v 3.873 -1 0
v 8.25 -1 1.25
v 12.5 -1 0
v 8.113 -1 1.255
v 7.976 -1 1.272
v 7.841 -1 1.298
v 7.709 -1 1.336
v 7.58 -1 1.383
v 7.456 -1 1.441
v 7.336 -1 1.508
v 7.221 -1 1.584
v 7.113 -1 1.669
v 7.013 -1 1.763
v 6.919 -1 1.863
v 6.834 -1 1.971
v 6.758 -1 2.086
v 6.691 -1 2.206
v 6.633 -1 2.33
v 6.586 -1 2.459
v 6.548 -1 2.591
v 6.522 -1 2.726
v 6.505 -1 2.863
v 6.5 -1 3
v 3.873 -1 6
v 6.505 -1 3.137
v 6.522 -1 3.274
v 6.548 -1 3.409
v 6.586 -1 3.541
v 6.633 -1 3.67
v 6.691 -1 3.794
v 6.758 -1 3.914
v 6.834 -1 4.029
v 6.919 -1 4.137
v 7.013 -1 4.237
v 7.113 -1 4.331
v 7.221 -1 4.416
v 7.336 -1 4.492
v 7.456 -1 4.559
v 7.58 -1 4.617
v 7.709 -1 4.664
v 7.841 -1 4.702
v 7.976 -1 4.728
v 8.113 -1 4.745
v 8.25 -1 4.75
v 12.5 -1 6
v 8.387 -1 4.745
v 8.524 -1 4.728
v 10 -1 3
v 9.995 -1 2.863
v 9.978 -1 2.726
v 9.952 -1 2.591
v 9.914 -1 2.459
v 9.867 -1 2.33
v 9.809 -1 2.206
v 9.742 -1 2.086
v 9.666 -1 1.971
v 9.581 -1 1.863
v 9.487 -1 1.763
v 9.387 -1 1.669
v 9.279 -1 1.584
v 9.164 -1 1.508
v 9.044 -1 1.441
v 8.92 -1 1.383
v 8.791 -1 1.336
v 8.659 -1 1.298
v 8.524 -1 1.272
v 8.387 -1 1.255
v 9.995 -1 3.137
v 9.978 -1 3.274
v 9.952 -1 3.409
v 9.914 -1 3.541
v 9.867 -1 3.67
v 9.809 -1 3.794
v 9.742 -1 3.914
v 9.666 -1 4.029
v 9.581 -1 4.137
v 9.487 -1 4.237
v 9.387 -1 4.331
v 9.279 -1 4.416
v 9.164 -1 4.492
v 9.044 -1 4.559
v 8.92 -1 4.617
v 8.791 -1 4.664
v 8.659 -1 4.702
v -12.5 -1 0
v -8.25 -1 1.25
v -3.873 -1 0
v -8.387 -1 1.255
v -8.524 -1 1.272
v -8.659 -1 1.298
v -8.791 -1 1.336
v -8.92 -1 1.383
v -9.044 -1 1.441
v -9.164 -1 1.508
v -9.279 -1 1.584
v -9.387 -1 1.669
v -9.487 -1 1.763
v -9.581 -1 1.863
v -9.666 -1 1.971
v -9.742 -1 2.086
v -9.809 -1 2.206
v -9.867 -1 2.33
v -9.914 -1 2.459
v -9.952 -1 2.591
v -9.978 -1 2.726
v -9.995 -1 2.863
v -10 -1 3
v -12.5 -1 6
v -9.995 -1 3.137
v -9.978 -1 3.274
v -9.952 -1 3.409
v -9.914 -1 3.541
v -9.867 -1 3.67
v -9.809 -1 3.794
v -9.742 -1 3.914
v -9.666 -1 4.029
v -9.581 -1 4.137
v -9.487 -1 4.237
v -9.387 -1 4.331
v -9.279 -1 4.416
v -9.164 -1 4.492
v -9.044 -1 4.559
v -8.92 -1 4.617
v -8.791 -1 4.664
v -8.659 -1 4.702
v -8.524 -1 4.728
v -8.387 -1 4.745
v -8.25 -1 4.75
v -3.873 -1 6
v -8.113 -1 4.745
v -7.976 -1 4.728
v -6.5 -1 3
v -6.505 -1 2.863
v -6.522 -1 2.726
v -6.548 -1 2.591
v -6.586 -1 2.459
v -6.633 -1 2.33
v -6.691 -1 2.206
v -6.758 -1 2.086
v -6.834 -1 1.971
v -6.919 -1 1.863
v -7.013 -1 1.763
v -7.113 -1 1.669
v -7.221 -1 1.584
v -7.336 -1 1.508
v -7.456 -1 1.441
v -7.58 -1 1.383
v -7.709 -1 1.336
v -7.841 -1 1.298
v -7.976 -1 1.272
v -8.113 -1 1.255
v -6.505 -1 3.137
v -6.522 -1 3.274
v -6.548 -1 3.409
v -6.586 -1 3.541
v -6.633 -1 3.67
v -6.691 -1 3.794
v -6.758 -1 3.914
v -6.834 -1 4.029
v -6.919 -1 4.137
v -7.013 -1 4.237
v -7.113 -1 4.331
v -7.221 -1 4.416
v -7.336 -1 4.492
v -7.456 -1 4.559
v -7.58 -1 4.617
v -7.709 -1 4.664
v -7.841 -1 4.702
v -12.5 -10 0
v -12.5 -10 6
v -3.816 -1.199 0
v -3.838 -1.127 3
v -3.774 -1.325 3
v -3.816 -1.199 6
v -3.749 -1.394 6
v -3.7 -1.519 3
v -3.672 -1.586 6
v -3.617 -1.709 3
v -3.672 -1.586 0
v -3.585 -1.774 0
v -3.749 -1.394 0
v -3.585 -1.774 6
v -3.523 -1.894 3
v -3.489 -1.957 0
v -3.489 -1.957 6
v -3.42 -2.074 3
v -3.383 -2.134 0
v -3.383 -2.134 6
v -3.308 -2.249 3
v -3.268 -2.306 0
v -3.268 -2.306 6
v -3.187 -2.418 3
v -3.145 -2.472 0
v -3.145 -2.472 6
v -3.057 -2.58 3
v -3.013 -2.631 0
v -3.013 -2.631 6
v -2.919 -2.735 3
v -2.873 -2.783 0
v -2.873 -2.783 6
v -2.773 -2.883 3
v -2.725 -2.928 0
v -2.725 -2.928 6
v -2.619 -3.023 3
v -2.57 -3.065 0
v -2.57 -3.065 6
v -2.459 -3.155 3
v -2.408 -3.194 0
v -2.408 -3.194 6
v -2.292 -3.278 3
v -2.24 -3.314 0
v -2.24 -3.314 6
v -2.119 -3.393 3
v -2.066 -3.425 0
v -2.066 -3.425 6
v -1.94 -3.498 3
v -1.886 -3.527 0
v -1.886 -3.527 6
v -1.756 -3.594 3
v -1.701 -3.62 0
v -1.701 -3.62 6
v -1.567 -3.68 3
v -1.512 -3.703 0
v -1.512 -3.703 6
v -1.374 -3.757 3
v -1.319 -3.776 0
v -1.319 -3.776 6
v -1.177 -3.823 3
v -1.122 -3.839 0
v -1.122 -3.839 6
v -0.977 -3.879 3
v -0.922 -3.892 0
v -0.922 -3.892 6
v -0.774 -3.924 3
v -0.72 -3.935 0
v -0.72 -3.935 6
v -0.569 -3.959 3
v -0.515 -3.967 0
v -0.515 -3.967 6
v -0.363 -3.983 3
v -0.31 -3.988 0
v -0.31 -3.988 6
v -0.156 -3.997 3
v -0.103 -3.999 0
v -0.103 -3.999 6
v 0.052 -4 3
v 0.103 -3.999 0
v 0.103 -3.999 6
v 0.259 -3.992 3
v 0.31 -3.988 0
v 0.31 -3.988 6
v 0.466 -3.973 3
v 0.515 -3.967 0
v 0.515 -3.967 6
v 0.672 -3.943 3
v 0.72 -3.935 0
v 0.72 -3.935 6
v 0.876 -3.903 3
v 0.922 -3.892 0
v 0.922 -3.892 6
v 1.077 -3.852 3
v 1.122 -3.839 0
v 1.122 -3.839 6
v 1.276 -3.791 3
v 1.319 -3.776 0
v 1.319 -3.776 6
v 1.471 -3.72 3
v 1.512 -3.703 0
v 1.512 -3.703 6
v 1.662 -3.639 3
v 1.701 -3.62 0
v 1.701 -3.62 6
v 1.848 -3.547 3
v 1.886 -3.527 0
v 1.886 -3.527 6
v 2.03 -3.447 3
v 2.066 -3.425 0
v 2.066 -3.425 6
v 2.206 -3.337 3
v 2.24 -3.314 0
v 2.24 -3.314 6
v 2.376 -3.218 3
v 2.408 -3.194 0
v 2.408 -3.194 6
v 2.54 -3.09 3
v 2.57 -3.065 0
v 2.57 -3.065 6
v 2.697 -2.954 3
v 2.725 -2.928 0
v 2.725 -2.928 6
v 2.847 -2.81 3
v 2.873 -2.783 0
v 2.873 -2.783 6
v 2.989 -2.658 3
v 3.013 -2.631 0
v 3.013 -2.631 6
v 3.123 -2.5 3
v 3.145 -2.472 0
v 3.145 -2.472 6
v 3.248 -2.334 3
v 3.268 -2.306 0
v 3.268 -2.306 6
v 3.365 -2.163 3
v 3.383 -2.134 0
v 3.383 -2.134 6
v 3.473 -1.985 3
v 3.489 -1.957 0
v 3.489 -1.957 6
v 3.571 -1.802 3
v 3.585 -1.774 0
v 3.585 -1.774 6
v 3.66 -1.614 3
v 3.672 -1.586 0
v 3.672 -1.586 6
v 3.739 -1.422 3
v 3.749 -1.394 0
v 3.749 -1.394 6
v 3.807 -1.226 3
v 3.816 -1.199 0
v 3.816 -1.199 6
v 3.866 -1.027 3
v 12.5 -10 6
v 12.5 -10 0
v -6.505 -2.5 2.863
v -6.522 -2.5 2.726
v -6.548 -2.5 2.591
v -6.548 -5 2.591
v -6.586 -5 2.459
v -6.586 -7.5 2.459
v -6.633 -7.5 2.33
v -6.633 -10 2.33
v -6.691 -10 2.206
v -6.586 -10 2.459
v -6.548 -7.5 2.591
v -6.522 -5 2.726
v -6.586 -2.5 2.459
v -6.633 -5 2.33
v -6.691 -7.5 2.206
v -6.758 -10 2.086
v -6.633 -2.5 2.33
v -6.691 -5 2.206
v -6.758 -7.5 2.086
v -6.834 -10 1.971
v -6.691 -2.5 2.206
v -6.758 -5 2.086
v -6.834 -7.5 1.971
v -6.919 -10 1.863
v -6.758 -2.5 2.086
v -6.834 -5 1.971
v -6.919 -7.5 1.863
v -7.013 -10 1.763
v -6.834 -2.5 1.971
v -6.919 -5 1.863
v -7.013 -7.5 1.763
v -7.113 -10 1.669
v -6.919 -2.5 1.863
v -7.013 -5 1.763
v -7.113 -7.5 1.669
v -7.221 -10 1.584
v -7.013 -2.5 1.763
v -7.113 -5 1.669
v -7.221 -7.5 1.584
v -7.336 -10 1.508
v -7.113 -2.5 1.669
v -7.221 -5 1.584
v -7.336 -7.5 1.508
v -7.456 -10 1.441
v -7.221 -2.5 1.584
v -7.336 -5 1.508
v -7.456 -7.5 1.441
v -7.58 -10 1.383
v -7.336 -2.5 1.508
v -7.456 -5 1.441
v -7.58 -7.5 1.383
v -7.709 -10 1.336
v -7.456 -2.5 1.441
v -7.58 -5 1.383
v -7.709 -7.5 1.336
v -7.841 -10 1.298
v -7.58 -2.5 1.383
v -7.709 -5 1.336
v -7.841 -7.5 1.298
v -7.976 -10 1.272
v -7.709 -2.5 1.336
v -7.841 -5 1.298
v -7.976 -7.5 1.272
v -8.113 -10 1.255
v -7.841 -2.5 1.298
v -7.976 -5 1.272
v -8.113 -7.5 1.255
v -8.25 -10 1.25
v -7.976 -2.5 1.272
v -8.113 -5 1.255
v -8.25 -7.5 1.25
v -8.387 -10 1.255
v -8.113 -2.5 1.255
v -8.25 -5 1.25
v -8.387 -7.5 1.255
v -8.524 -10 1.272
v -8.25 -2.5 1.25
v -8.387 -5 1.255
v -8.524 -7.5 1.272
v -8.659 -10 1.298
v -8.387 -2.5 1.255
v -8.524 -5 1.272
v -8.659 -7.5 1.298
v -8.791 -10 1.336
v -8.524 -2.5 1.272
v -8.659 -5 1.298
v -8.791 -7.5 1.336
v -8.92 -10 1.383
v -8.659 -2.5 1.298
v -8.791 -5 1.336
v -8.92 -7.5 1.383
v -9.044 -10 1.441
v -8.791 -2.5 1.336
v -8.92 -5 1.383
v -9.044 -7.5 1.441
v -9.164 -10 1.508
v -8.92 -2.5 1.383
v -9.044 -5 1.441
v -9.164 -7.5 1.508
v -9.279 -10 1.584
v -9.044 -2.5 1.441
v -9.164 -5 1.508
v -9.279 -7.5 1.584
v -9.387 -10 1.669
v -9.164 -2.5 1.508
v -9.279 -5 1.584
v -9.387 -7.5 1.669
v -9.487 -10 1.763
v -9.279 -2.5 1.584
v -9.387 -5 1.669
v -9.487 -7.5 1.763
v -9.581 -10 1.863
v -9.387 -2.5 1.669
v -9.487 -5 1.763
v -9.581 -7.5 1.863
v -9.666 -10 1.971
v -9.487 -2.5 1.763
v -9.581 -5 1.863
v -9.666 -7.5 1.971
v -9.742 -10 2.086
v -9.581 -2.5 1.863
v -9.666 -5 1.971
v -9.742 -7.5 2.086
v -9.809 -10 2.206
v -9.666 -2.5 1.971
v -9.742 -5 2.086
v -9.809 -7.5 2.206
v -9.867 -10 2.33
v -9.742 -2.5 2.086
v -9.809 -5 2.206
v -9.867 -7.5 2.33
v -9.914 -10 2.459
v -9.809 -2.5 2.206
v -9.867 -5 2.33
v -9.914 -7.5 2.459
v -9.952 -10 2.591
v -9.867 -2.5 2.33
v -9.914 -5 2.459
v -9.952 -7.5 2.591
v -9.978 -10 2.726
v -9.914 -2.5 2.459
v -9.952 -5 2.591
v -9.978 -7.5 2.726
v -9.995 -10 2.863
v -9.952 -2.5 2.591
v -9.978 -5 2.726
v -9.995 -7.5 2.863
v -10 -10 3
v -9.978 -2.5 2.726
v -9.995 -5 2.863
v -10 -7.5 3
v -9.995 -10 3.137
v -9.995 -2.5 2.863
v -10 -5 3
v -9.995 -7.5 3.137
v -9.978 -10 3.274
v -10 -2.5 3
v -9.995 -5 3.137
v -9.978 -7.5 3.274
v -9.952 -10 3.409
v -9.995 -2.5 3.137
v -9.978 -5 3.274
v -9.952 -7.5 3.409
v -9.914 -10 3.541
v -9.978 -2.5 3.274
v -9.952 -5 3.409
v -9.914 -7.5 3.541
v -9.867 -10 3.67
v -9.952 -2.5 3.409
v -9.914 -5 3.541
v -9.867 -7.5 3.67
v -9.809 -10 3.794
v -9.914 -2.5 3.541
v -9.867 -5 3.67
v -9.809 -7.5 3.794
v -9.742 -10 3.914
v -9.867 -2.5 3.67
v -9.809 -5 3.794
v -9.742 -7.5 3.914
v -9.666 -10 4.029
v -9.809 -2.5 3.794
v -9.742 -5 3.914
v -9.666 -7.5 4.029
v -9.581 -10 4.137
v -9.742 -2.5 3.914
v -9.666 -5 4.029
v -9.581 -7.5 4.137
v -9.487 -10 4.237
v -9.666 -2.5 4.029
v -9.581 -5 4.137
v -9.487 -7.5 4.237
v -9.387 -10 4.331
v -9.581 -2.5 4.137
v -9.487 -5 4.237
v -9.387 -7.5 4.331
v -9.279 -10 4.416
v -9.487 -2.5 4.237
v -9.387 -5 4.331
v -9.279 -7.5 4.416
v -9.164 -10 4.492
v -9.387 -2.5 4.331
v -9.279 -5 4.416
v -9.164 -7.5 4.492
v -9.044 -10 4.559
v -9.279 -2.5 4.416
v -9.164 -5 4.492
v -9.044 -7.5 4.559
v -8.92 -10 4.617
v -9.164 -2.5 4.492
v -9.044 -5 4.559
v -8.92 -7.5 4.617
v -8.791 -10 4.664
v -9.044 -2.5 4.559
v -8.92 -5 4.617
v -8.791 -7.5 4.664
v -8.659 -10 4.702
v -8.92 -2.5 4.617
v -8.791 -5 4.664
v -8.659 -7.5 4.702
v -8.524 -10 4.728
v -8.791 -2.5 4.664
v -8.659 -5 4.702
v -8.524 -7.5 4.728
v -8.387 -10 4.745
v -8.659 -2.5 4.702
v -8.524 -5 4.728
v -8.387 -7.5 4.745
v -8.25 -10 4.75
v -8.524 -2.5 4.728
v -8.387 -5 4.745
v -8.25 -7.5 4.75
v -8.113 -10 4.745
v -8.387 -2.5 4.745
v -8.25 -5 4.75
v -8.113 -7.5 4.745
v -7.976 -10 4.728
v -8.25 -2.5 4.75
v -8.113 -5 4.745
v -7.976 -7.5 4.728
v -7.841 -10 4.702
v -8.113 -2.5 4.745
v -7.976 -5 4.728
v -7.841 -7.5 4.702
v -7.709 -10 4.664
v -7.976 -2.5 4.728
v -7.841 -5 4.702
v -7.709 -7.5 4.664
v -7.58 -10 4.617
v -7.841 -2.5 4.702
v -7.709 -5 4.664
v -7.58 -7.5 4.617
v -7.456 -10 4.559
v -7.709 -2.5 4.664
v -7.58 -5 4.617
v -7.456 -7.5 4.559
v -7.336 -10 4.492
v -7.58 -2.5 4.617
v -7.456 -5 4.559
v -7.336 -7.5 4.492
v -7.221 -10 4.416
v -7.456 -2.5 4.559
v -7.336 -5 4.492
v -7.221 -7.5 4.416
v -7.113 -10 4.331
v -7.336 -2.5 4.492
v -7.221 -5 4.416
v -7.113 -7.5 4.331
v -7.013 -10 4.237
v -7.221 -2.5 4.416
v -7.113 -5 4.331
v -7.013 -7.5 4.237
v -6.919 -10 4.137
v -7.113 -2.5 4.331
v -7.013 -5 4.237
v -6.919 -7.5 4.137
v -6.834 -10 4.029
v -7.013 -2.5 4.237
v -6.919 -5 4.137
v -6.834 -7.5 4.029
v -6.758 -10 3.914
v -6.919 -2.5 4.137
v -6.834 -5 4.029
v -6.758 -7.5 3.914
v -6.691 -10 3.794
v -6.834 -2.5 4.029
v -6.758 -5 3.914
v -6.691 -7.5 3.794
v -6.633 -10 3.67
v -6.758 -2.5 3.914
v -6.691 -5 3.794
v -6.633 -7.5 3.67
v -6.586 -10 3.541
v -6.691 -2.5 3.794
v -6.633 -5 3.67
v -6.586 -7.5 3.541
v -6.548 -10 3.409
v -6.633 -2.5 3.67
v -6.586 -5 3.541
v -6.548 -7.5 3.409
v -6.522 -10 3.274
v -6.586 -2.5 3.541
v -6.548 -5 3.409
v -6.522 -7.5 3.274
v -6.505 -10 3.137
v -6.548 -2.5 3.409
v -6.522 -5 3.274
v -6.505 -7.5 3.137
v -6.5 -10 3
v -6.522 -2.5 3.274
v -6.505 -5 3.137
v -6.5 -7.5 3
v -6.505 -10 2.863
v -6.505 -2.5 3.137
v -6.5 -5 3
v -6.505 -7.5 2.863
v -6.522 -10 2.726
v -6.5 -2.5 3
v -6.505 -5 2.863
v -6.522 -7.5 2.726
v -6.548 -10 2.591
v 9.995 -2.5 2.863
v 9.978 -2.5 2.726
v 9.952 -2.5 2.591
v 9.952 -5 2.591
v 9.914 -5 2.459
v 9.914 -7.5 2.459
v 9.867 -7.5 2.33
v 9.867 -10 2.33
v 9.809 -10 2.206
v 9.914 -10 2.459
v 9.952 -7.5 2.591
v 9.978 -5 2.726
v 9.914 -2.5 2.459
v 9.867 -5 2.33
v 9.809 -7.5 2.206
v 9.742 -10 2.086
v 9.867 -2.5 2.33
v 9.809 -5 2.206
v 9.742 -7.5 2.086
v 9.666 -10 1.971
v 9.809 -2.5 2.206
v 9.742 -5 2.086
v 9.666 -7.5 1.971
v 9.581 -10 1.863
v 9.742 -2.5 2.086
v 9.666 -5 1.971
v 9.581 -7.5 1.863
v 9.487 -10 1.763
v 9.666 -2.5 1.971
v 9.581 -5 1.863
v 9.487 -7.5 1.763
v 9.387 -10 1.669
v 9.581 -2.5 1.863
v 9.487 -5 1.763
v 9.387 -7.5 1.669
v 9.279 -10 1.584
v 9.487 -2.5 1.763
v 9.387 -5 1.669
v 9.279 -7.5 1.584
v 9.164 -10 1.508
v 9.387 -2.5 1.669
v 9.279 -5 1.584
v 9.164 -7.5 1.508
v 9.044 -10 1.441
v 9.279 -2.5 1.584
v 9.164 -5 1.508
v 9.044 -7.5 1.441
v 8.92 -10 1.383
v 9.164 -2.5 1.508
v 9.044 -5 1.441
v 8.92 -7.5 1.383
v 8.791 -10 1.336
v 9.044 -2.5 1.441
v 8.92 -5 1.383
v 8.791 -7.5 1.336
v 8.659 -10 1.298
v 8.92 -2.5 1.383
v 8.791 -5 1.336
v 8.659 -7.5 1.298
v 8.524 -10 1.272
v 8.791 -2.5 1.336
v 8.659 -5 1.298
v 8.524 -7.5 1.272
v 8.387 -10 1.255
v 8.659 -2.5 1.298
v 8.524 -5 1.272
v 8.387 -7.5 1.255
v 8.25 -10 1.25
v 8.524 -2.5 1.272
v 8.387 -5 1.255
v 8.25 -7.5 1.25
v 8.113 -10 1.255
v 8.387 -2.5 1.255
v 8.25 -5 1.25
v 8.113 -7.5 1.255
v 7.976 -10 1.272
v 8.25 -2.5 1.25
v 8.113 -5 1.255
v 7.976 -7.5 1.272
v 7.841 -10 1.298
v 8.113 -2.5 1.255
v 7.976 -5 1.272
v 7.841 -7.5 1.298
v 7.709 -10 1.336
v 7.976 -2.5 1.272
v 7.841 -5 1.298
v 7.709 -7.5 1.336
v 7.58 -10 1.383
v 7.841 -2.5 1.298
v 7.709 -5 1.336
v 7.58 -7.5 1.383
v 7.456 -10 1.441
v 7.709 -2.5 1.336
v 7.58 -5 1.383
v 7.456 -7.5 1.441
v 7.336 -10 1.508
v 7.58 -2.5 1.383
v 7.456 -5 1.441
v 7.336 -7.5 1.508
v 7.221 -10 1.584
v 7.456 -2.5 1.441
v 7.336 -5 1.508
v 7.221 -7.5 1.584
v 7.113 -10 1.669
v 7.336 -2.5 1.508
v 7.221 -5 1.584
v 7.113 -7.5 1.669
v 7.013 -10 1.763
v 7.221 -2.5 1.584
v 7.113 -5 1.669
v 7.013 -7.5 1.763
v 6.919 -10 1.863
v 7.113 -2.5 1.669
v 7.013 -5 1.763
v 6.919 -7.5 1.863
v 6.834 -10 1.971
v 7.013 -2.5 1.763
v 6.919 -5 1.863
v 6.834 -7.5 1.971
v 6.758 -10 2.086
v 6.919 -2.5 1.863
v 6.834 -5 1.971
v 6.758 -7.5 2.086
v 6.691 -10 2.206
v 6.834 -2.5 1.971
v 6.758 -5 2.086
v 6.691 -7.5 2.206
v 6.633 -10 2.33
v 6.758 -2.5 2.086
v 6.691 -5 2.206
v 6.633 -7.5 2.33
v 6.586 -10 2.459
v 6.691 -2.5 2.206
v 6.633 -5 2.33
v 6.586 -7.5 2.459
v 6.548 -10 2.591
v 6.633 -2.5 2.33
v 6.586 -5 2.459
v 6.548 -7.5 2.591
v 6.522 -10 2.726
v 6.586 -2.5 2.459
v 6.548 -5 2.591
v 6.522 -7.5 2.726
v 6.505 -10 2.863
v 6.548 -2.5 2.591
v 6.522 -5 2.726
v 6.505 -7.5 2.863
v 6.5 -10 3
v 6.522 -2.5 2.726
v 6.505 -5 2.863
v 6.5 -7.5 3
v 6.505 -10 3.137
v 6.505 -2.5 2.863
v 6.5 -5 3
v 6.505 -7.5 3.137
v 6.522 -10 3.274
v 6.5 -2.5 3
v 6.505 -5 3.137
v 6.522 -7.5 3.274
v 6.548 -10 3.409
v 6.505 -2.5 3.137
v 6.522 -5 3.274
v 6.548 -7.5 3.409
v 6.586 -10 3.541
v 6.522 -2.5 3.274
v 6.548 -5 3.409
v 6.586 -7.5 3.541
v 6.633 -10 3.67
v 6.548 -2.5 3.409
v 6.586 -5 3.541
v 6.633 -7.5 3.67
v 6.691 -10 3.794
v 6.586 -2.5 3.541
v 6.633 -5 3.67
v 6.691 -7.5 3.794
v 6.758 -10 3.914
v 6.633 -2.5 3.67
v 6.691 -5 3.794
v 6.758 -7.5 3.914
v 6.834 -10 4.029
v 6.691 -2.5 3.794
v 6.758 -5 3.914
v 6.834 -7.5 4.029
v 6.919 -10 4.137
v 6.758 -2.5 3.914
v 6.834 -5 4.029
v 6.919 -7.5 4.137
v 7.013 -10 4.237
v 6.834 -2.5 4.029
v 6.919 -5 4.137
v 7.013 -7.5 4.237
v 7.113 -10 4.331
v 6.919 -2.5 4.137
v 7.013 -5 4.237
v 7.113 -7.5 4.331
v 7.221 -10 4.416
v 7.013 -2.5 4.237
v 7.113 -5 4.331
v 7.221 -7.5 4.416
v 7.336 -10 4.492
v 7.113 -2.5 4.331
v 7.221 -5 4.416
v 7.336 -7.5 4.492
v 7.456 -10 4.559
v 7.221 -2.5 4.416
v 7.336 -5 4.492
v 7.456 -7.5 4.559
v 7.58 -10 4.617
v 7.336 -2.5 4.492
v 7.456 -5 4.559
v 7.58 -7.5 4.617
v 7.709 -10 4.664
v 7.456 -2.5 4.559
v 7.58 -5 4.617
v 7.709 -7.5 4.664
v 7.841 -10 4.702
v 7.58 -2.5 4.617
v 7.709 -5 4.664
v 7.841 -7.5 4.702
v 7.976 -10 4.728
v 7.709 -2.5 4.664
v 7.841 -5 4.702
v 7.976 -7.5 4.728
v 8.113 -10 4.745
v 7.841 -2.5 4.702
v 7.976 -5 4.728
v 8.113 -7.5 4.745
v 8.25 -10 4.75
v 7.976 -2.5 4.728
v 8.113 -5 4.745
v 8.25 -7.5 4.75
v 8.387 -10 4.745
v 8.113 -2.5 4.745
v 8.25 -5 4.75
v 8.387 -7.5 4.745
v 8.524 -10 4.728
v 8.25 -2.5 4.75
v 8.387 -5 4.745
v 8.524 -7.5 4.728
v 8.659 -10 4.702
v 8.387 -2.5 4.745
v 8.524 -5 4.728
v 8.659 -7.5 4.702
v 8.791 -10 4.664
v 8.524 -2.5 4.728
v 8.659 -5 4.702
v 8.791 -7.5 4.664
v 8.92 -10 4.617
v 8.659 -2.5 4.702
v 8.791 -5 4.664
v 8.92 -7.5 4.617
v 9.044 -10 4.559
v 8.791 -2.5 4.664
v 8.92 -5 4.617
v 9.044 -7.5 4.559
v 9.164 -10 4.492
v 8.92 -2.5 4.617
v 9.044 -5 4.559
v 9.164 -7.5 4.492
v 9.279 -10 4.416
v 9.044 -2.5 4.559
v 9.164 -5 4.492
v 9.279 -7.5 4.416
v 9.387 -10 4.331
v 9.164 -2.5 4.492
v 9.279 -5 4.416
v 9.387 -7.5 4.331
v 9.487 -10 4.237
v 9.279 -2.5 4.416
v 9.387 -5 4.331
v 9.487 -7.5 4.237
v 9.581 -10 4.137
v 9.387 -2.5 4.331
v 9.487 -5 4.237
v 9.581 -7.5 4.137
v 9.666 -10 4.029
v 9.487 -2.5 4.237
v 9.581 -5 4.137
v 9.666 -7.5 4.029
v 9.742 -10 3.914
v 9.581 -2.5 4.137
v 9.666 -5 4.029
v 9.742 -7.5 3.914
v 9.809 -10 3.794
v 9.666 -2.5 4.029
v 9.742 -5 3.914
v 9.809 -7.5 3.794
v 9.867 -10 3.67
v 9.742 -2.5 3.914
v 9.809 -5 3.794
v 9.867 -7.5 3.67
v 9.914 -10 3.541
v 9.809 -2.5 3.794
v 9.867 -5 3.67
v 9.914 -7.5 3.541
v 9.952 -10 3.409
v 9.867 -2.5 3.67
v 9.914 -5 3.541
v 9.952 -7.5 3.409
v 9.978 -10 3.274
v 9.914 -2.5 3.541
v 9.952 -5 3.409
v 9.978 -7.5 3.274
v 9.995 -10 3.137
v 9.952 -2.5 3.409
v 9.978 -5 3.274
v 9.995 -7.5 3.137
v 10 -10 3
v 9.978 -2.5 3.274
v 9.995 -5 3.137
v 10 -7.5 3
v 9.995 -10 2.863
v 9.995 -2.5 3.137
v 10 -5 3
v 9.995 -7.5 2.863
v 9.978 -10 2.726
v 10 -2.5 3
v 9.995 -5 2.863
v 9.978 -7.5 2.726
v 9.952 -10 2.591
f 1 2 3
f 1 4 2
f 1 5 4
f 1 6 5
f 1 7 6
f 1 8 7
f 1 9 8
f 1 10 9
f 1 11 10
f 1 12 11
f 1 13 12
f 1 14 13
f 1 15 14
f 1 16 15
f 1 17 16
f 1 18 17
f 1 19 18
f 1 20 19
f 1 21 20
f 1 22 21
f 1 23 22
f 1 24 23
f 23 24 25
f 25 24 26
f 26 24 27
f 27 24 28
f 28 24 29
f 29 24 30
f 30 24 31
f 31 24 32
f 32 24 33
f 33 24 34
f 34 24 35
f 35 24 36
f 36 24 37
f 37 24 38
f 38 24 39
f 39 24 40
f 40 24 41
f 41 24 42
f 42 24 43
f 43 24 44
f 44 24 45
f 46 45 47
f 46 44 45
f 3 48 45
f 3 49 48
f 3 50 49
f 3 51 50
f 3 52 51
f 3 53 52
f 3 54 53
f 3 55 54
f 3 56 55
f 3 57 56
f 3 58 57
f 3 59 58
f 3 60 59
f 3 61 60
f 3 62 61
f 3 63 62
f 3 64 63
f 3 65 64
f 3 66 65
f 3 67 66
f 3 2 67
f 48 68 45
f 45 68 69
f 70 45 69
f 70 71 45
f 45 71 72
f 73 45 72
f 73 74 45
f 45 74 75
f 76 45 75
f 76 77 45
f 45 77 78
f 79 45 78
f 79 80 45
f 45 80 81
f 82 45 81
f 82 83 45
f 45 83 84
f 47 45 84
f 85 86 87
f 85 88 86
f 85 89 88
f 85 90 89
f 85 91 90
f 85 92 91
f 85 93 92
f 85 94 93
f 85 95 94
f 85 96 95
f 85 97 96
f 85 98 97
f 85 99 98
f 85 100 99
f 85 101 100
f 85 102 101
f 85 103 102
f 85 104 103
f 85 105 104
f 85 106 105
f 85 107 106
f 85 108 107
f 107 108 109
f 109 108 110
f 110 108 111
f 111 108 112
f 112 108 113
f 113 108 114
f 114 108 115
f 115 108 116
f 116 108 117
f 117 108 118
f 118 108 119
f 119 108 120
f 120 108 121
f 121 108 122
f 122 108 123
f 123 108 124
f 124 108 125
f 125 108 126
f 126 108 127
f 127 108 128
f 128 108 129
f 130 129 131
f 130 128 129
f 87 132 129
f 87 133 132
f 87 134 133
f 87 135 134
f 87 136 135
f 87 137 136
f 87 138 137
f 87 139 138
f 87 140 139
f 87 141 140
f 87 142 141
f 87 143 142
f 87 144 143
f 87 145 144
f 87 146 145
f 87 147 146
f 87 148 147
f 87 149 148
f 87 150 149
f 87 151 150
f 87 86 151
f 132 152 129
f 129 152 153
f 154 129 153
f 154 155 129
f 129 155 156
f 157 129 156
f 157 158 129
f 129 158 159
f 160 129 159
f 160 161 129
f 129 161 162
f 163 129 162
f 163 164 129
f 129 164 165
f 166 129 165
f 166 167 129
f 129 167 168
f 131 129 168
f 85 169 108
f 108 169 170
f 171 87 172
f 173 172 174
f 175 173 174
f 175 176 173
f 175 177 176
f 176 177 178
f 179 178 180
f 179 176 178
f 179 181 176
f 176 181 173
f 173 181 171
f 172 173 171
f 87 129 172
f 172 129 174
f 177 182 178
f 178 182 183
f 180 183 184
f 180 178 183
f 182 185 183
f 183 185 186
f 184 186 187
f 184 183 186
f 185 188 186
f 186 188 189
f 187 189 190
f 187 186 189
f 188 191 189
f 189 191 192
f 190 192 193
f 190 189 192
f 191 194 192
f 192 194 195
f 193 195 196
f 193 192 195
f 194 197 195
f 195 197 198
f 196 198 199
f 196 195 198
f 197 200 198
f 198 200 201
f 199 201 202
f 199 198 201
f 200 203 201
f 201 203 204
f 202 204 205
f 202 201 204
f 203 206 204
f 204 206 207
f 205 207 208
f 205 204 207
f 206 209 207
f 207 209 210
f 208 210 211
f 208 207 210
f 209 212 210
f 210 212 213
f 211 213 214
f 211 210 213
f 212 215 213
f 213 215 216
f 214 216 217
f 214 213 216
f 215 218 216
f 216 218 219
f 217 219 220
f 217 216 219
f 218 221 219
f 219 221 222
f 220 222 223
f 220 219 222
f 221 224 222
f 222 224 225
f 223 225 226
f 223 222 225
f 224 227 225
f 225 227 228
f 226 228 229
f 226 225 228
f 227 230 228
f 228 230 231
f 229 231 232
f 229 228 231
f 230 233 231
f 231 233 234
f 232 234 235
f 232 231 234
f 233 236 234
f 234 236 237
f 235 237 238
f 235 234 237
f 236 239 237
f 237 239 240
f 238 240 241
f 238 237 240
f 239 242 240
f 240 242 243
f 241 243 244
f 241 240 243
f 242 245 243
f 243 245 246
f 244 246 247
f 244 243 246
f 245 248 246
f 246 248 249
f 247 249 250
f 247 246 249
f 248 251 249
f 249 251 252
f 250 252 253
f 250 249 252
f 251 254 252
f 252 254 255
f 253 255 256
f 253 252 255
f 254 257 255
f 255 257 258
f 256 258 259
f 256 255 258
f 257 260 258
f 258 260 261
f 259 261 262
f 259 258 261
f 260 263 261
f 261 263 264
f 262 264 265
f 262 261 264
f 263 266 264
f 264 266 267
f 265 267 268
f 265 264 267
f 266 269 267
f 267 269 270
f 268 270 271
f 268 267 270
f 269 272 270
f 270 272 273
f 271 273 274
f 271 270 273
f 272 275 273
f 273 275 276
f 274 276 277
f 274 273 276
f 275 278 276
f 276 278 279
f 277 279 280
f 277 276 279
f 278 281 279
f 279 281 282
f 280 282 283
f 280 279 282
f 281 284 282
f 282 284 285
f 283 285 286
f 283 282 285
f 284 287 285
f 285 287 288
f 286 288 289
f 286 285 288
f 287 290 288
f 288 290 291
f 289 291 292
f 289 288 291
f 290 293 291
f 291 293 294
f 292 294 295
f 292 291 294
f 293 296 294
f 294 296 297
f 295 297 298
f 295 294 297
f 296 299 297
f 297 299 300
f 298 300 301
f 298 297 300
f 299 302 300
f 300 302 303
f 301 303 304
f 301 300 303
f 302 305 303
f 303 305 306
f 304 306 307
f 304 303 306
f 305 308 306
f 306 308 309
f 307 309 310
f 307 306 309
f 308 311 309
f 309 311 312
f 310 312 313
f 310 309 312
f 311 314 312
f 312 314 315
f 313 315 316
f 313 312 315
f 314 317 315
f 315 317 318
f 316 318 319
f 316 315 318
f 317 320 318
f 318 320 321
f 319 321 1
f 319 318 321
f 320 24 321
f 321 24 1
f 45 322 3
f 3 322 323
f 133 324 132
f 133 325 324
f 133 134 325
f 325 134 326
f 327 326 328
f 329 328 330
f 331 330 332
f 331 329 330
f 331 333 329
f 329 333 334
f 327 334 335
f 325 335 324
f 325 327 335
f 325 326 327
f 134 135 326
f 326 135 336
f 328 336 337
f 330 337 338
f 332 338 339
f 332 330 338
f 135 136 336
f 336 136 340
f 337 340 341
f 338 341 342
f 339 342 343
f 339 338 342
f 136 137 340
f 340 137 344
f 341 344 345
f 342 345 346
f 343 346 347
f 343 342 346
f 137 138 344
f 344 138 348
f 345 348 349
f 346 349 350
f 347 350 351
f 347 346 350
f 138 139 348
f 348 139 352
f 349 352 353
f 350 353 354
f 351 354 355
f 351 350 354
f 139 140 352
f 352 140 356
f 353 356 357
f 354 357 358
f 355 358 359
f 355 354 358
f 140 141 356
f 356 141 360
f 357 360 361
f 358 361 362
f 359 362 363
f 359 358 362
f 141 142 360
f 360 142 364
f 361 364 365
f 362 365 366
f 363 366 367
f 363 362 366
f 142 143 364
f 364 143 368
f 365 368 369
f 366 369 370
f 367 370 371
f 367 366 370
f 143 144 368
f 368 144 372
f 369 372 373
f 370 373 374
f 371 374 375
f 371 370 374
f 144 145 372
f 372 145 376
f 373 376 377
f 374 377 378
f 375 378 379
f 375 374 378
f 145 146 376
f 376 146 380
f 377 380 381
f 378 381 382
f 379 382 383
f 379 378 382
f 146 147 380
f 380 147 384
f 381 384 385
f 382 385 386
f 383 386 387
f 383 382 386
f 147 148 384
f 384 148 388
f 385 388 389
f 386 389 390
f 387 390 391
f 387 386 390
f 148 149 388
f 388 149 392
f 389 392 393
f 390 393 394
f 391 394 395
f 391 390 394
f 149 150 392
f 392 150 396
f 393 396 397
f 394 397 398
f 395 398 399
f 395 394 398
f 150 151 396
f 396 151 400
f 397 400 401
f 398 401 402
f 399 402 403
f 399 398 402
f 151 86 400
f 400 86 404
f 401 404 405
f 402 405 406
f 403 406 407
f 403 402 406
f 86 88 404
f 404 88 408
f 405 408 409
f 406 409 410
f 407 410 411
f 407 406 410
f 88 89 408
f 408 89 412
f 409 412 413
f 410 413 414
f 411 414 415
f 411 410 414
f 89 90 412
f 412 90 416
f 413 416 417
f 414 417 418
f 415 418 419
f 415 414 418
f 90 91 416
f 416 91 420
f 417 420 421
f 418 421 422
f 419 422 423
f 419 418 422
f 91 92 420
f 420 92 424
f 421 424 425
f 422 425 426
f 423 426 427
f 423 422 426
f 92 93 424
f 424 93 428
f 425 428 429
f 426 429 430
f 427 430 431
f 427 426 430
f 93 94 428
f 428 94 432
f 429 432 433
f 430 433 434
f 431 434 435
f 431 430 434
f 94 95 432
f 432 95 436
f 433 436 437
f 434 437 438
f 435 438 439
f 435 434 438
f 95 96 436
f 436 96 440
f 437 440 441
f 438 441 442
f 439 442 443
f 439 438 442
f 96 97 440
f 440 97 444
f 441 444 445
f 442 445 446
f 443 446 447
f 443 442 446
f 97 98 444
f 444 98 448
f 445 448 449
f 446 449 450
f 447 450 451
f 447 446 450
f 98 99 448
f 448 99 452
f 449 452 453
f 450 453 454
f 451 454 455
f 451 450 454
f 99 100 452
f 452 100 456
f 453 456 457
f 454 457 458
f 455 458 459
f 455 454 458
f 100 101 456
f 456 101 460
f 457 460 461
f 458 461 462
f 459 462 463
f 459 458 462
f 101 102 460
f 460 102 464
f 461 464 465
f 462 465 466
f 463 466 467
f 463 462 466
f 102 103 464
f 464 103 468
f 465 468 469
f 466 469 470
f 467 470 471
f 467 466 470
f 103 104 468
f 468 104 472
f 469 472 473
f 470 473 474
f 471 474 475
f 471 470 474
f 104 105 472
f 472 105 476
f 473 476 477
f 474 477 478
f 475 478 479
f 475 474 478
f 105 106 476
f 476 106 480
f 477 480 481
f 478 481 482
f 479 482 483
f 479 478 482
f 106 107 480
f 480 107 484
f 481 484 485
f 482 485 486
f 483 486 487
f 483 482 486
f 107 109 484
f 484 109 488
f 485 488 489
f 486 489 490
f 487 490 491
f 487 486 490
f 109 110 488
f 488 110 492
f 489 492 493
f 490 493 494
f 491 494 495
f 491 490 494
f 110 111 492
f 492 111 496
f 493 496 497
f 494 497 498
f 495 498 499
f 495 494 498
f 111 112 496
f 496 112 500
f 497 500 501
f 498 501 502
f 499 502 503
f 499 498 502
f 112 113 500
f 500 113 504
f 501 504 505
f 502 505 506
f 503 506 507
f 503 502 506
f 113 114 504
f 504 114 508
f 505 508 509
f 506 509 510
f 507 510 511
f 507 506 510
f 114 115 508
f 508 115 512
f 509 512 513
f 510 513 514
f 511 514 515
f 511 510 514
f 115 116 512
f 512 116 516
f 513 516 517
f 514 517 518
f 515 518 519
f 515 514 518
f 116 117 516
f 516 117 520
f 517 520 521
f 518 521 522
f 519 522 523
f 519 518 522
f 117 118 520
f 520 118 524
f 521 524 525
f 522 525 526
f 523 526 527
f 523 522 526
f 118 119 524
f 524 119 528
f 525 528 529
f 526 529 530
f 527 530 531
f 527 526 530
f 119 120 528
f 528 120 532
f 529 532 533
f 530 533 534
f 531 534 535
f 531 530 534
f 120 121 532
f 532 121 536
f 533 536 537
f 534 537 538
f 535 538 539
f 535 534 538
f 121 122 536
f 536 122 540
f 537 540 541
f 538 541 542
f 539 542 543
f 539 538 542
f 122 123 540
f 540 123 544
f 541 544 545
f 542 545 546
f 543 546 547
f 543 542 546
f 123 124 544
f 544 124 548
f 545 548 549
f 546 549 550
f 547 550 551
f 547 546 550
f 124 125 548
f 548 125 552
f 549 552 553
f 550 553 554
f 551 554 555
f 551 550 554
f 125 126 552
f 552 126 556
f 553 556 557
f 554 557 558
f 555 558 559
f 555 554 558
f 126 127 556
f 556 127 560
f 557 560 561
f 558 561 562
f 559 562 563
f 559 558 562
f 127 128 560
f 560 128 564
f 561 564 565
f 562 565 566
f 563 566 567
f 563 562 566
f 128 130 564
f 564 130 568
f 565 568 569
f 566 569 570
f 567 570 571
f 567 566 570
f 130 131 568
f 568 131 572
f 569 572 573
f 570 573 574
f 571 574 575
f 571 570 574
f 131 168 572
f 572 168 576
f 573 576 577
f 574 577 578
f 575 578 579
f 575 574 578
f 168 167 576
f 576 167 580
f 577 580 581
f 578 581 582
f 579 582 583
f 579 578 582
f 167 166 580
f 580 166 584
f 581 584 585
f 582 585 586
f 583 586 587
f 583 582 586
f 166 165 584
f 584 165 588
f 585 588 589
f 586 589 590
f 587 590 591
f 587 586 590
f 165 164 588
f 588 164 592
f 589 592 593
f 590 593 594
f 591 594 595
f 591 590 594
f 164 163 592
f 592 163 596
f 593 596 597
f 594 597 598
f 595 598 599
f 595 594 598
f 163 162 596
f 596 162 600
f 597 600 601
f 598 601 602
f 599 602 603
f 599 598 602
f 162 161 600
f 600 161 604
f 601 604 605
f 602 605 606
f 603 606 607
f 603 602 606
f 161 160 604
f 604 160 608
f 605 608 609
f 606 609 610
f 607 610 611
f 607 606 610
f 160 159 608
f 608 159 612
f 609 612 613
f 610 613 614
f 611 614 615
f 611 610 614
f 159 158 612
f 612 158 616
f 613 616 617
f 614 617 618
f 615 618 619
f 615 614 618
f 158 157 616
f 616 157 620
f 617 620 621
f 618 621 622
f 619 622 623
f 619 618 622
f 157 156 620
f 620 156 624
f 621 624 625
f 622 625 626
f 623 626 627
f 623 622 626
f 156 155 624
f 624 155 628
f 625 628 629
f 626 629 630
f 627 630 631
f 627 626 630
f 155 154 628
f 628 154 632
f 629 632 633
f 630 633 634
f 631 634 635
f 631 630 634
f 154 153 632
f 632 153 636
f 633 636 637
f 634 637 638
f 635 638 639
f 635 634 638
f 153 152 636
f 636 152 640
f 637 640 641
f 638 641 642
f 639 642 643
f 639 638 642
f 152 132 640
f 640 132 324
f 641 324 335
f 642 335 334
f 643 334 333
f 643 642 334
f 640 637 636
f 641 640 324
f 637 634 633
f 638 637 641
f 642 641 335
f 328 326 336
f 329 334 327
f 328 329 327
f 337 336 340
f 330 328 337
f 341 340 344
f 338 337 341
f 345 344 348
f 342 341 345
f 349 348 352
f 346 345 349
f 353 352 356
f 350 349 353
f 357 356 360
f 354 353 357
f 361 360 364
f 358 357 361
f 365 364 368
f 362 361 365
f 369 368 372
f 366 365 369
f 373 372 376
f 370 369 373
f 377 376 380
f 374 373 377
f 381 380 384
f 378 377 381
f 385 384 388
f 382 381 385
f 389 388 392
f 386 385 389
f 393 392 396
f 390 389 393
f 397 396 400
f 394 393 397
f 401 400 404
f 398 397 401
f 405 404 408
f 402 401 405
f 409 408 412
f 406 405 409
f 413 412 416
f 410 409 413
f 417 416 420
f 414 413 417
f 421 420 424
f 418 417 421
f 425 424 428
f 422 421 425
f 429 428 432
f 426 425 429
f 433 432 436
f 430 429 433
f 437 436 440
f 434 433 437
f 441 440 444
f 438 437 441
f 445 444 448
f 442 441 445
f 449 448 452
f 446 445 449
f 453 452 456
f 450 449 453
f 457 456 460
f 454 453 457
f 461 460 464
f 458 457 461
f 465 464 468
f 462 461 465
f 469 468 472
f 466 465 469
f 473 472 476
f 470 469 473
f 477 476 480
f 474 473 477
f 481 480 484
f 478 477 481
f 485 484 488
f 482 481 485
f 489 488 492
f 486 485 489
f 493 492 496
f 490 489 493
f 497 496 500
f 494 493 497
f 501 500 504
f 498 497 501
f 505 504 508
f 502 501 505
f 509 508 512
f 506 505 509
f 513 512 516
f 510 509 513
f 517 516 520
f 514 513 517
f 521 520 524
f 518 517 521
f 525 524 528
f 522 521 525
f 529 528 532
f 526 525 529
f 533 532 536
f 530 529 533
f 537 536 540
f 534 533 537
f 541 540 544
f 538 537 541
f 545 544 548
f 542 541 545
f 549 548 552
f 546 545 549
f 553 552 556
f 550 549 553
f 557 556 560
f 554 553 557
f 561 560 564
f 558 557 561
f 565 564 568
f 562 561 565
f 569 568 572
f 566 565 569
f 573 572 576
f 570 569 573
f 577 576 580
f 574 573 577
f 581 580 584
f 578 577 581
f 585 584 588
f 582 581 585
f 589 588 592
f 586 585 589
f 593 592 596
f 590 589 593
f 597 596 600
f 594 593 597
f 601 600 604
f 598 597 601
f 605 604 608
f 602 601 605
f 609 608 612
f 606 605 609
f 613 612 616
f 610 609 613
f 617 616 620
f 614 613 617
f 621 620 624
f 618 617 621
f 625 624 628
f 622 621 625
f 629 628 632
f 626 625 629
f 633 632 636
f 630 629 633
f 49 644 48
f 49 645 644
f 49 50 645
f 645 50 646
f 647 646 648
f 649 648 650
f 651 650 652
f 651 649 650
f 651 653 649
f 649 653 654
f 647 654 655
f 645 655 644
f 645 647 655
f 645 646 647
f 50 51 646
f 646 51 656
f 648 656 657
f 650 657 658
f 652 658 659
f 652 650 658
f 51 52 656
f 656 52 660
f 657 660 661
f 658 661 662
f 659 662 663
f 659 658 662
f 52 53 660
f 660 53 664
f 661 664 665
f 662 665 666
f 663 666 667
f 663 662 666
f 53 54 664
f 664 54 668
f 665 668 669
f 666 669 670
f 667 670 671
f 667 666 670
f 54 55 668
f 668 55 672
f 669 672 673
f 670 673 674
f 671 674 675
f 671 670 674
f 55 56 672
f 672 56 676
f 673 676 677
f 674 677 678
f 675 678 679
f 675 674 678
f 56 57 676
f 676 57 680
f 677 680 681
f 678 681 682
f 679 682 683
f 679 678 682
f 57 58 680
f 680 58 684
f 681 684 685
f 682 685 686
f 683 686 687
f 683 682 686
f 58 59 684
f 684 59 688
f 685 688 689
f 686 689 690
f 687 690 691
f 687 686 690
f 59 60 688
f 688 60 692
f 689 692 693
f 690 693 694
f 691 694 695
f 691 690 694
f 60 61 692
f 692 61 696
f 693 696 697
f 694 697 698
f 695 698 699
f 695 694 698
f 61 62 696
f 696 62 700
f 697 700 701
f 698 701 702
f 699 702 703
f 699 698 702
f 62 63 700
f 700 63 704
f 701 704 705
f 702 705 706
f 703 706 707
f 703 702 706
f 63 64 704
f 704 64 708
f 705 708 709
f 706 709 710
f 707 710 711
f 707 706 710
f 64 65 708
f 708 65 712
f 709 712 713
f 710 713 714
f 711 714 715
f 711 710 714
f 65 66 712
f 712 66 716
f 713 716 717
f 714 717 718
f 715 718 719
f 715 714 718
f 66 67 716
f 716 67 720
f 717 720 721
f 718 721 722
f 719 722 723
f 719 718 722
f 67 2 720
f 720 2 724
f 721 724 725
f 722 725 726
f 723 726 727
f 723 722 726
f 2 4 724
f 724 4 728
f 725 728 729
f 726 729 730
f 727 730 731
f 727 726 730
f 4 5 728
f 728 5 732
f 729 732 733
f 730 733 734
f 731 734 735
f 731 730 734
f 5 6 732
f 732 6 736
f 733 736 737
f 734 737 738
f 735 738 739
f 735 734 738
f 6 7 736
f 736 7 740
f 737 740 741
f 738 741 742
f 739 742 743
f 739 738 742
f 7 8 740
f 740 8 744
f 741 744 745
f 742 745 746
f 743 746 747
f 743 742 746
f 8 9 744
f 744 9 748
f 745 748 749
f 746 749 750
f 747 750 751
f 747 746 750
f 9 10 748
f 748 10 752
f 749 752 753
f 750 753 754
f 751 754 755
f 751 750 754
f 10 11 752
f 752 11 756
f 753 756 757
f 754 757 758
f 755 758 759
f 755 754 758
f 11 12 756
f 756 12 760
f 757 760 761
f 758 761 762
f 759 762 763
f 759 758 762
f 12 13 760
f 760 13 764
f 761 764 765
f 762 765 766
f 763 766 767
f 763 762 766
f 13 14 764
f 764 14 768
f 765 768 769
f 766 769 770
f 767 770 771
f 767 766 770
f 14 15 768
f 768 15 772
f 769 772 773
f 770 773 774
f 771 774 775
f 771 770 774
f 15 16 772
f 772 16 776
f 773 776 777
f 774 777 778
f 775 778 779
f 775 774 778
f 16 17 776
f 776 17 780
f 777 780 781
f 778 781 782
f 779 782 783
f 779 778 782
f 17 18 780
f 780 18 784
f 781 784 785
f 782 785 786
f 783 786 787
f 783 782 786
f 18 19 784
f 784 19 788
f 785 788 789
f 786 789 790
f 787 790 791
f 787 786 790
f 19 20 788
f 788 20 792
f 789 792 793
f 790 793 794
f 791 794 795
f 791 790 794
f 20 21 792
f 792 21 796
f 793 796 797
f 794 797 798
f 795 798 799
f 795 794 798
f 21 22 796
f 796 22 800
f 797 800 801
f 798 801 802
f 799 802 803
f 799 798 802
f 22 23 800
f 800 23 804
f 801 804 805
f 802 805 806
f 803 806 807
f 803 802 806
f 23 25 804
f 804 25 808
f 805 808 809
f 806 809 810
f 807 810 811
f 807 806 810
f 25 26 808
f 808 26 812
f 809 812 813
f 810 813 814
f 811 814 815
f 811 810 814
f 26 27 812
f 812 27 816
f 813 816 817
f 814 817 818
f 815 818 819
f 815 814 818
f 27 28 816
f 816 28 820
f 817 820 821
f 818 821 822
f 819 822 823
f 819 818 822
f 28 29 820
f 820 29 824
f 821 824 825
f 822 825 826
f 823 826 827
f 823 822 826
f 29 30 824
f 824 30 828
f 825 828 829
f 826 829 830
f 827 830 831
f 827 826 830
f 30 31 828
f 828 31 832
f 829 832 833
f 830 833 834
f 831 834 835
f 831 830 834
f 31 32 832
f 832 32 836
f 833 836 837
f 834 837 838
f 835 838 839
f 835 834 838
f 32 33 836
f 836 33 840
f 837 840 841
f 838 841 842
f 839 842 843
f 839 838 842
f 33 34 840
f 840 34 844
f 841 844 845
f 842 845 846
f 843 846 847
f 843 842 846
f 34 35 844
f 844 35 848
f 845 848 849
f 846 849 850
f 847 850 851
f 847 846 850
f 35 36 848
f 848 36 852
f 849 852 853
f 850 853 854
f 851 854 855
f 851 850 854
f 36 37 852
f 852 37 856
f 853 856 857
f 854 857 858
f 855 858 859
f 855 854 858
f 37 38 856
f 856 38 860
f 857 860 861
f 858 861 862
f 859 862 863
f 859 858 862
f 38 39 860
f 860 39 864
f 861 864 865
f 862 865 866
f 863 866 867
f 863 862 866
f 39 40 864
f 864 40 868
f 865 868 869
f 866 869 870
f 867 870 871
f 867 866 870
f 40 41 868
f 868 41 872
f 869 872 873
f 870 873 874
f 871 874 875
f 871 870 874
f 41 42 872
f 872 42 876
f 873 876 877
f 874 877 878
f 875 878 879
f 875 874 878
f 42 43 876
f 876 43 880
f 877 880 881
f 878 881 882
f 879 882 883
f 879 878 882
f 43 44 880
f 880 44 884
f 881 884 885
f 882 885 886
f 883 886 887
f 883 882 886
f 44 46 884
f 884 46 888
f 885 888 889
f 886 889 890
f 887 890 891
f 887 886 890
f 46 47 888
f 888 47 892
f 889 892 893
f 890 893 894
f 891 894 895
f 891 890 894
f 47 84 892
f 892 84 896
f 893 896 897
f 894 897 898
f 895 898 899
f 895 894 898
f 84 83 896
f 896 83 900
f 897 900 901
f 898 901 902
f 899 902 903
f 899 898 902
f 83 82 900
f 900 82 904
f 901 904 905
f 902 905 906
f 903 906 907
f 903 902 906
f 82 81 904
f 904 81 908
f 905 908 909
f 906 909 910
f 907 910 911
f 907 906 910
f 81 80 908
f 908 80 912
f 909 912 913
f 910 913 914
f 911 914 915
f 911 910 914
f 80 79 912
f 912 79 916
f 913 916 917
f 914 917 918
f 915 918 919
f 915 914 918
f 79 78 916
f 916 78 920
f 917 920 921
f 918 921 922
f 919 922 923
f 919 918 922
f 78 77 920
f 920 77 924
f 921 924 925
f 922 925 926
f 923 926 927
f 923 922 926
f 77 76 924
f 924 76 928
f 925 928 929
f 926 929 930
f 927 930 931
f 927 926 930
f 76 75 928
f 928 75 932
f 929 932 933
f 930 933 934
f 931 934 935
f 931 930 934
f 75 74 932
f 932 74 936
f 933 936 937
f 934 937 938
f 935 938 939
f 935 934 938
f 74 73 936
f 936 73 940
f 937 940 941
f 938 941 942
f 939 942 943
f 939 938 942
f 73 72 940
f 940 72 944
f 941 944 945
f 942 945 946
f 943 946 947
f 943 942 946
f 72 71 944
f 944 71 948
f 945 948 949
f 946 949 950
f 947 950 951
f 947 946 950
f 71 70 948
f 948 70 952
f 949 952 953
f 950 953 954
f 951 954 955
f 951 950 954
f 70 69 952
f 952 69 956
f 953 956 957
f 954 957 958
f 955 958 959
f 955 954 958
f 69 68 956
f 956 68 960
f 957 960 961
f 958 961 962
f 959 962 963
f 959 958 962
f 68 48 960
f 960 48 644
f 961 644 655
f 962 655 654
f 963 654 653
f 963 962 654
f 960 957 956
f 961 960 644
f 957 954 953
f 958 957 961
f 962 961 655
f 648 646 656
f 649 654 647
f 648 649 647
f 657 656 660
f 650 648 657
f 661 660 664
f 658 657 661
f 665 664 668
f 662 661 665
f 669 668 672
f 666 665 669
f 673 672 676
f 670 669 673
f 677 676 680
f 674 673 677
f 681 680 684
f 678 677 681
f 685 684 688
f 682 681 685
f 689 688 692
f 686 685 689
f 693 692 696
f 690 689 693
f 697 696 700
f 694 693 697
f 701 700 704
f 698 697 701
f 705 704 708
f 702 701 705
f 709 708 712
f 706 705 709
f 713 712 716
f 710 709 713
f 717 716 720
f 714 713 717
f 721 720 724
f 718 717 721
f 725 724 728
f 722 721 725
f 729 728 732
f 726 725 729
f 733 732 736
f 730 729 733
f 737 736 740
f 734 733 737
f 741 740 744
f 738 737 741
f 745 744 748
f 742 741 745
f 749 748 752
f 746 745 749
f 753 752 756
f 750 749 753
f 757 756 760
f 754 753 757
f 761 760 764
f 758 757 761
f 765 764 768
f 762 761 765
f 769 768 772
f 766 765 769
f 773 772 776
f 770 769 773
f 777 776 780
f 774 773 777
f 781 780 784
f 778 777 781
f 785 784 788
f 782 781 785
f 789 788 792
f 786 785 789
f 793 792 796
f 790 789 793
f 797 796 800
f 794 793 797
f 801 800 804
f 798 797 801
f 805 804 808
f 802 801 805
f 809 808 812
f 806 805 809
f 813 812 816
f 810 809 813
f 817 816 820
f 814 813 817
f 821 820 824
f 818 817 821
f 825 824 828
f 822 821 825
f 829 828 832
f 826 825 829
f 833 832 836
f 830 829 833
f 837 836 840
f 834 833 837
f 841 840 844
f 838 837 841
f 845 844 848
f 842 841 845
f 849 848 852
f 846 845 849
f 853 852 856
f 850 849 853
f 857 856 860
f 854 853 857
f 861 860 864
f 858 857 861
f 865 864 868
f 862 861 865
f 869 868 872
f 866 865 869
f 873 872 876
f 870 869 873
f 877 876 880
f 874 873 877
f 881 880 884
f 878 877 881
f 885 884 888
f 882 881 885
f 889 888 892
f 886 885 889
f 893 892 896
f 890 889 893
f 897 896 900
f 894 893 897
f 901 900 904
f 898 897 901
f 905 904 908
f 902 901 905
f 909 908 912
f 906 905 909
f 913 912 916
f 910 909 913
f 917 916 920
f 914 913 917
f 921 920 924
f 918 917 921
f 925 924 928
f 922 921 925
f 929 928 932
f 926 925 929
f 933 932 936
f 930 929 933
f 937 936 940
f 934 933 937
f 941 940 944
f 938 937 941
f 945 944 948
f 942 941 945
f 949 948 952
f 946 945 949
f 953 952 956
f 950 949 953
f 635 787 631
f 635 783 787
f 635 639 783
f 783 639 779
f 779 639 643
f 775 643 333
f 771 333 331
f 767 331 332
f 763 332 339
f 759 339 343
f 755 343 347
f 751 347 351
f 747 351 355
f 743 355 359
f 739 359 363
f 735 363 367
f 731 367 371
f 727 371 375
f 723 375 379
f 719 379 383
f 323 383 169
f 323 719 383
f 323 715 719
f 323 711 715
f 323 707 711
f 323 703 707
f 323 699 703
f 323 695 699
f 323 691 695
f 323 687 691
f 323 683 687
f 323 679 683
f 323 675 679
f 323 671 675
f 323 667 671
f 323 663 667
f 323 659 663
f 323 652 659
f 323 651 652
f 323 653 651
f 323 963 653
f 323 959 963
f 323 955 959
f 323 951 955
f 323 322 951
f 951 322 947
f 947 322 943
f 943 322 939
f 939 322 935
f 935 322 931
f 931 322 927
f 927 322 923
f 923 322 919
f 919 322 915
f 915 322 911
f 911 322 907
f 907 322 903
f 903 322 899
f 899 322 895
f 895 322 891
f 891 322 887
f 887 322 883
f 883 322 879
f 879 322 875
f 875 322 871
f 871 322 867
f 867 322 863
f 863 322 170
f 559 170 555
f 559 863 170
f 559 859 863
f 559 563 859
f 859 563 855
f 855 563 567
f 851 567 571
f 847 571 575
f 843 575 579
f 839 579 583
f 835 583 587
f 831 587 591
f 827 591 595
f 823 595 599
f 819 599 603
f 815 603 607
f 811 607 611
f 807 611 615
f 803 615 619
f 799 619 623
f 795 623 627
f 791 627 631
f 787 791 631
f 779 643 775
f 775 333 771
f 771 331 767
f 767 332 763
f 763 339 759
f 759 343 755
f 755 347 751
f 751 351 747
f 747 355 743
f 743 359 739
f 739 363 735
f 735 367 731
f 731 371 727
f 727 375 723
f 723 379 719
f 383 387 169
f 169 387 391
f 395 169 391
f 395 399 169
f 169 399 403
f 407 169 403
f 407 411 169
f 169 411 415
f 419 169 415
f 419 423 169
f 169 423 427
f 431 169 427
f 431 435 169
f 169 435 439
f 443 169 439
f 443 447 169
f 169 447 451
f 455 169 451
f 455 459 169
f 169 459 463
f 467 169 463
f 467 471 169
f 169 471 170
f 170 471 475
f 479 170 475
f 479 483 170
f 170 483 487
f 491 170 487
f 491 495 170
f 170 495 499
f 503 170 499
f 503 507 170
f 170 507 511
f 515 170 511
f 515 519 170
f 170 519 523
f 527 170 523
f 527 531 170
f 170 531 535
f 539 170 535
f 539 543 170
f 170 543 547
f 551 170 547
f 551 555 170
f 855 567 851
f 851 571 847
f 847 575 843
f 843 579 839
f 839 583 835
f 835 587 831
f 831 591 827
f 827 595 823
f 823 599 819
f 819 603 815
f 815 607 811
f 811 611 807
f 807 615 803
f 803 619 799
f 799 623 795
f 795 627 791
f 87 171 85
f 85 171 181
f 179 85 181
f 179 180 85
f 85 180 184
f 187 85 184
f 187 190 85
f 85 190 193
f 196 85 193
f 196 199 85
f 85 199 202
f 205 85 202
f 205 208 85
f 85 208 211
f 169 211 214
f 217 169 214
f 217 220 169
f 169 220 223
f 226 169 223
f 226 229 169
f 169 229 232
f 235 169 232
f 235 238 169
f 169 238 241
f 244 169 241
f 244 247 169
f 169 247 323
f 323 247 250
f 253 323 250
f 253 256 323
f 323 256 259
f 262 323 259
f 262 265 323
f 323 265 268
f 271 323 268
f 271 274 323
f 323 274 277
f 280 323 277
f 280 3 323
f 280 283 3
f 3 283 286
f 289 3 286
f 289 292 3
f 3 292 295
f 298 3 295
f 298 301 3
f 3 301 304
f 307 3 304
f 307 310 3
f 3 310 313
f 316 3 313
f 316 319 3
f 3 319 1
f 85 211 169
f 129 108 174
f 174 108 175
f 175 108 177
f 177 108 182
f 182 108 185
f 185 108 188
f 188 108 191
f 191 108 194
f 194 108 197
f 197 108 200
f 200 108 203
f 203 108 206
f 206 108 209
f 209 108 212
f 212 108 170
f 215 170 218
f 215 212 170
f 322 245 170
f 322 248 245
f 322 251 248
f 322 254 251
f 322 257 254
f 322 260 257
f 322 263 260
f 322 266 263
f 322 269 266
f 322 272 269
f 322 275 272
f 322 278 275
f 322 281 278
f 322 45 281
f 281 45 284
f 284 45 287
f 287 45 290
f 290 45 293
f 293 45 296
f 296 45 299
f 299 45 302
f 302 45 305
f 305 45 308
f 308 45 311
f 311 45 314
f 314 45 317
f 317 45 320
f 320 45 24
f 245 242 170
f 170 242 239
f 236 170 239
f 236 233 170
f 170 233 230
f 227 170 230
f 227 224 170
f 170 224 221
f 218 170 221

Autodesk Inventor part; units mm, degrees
ref_plane "YZ Plane" through (0, 0, 0) normal (1, 0, 0) x (0, 1, 0)
ref_plane "XZ Plane" through (0, 0, 0) normal (0, 1, 0) x (-1, 0, 0)
ref_plane "XY Plane" through (0, 0, 0) normal (0, 0, 1) x (1, 0, 0)
sketch "Sketch1" plane through (0, 0, 0) normal (0, 0, 1) x (1, 0, 0)
  arc A0 (-4, 0) -> (4, 0) centre (0, 0) ccw
  line L0 (-4, 0) -> (-12.5, 0)
  line L1 (-12.5, 0) -> (-12.5, -10)
  line L2 (-12.5, -10) -> (12.5, -10)
  line L3 (12.5, -10) -> (12.5, 0)
  line L4 (12.5, 0) -> (4, 0)
  dimension "d0" = 4
  dimension "d1" = 10
  dimension "d2" = 25
extrude "Extrusion1" add sketch "Sketch1" along normal blind 6
sketch "Sketch2" plane through (-12.5, 0, 0) normal (0, 1, 0) x (1, 0, 0)
  line L0 (0, 0) -> (8.5, 0) projected
  line L1 (8.5, -6) -> (0, -6) projected
  line L2 (16.5, 0) -> (25, 0) projected
  line L3 (16.5, 0) -> (16.5, -6) projected
  line L4 (25, -6) -> (16.5, -6) projected
  line L5 (25, 0) -> (25, -6) projected
  line L6 (4.25, 0) -> (4.25, -6) construction
  line L7 (20.75, 0) -> (20.75, -6) construction
  circle A0 centre (4.25, -3) radius 1.75
  circle A1 centre (20.75, -3) radius 1.75
  point P0 (12.5, 0)
  dimension "d5" = 3.5
extrude "Extrusion2" cut sketch "Sketch2" against normal through all contours A0 | A1
sketch "Sketch3" plane through (0, 0, 6) normal (0, 0, 1) x (1, 0, 0)
  line L0 (12.5, -10) -> (12.5, 0) projected
  line L1 (-12.5, 0) -> (12.5, 0)
  line L2 (12.5, 0) -> (12.5, -1)
  line L3 (12.5, -1) -> (-12.5, -1)
  line L4 (-12.5, -1) -> (-12.5, 0)
  dimension "d8" = 1
extrude "Extrusion3" cut sketch "Sketch3" against normal through all
properties part number "sensor bracket coupler"
